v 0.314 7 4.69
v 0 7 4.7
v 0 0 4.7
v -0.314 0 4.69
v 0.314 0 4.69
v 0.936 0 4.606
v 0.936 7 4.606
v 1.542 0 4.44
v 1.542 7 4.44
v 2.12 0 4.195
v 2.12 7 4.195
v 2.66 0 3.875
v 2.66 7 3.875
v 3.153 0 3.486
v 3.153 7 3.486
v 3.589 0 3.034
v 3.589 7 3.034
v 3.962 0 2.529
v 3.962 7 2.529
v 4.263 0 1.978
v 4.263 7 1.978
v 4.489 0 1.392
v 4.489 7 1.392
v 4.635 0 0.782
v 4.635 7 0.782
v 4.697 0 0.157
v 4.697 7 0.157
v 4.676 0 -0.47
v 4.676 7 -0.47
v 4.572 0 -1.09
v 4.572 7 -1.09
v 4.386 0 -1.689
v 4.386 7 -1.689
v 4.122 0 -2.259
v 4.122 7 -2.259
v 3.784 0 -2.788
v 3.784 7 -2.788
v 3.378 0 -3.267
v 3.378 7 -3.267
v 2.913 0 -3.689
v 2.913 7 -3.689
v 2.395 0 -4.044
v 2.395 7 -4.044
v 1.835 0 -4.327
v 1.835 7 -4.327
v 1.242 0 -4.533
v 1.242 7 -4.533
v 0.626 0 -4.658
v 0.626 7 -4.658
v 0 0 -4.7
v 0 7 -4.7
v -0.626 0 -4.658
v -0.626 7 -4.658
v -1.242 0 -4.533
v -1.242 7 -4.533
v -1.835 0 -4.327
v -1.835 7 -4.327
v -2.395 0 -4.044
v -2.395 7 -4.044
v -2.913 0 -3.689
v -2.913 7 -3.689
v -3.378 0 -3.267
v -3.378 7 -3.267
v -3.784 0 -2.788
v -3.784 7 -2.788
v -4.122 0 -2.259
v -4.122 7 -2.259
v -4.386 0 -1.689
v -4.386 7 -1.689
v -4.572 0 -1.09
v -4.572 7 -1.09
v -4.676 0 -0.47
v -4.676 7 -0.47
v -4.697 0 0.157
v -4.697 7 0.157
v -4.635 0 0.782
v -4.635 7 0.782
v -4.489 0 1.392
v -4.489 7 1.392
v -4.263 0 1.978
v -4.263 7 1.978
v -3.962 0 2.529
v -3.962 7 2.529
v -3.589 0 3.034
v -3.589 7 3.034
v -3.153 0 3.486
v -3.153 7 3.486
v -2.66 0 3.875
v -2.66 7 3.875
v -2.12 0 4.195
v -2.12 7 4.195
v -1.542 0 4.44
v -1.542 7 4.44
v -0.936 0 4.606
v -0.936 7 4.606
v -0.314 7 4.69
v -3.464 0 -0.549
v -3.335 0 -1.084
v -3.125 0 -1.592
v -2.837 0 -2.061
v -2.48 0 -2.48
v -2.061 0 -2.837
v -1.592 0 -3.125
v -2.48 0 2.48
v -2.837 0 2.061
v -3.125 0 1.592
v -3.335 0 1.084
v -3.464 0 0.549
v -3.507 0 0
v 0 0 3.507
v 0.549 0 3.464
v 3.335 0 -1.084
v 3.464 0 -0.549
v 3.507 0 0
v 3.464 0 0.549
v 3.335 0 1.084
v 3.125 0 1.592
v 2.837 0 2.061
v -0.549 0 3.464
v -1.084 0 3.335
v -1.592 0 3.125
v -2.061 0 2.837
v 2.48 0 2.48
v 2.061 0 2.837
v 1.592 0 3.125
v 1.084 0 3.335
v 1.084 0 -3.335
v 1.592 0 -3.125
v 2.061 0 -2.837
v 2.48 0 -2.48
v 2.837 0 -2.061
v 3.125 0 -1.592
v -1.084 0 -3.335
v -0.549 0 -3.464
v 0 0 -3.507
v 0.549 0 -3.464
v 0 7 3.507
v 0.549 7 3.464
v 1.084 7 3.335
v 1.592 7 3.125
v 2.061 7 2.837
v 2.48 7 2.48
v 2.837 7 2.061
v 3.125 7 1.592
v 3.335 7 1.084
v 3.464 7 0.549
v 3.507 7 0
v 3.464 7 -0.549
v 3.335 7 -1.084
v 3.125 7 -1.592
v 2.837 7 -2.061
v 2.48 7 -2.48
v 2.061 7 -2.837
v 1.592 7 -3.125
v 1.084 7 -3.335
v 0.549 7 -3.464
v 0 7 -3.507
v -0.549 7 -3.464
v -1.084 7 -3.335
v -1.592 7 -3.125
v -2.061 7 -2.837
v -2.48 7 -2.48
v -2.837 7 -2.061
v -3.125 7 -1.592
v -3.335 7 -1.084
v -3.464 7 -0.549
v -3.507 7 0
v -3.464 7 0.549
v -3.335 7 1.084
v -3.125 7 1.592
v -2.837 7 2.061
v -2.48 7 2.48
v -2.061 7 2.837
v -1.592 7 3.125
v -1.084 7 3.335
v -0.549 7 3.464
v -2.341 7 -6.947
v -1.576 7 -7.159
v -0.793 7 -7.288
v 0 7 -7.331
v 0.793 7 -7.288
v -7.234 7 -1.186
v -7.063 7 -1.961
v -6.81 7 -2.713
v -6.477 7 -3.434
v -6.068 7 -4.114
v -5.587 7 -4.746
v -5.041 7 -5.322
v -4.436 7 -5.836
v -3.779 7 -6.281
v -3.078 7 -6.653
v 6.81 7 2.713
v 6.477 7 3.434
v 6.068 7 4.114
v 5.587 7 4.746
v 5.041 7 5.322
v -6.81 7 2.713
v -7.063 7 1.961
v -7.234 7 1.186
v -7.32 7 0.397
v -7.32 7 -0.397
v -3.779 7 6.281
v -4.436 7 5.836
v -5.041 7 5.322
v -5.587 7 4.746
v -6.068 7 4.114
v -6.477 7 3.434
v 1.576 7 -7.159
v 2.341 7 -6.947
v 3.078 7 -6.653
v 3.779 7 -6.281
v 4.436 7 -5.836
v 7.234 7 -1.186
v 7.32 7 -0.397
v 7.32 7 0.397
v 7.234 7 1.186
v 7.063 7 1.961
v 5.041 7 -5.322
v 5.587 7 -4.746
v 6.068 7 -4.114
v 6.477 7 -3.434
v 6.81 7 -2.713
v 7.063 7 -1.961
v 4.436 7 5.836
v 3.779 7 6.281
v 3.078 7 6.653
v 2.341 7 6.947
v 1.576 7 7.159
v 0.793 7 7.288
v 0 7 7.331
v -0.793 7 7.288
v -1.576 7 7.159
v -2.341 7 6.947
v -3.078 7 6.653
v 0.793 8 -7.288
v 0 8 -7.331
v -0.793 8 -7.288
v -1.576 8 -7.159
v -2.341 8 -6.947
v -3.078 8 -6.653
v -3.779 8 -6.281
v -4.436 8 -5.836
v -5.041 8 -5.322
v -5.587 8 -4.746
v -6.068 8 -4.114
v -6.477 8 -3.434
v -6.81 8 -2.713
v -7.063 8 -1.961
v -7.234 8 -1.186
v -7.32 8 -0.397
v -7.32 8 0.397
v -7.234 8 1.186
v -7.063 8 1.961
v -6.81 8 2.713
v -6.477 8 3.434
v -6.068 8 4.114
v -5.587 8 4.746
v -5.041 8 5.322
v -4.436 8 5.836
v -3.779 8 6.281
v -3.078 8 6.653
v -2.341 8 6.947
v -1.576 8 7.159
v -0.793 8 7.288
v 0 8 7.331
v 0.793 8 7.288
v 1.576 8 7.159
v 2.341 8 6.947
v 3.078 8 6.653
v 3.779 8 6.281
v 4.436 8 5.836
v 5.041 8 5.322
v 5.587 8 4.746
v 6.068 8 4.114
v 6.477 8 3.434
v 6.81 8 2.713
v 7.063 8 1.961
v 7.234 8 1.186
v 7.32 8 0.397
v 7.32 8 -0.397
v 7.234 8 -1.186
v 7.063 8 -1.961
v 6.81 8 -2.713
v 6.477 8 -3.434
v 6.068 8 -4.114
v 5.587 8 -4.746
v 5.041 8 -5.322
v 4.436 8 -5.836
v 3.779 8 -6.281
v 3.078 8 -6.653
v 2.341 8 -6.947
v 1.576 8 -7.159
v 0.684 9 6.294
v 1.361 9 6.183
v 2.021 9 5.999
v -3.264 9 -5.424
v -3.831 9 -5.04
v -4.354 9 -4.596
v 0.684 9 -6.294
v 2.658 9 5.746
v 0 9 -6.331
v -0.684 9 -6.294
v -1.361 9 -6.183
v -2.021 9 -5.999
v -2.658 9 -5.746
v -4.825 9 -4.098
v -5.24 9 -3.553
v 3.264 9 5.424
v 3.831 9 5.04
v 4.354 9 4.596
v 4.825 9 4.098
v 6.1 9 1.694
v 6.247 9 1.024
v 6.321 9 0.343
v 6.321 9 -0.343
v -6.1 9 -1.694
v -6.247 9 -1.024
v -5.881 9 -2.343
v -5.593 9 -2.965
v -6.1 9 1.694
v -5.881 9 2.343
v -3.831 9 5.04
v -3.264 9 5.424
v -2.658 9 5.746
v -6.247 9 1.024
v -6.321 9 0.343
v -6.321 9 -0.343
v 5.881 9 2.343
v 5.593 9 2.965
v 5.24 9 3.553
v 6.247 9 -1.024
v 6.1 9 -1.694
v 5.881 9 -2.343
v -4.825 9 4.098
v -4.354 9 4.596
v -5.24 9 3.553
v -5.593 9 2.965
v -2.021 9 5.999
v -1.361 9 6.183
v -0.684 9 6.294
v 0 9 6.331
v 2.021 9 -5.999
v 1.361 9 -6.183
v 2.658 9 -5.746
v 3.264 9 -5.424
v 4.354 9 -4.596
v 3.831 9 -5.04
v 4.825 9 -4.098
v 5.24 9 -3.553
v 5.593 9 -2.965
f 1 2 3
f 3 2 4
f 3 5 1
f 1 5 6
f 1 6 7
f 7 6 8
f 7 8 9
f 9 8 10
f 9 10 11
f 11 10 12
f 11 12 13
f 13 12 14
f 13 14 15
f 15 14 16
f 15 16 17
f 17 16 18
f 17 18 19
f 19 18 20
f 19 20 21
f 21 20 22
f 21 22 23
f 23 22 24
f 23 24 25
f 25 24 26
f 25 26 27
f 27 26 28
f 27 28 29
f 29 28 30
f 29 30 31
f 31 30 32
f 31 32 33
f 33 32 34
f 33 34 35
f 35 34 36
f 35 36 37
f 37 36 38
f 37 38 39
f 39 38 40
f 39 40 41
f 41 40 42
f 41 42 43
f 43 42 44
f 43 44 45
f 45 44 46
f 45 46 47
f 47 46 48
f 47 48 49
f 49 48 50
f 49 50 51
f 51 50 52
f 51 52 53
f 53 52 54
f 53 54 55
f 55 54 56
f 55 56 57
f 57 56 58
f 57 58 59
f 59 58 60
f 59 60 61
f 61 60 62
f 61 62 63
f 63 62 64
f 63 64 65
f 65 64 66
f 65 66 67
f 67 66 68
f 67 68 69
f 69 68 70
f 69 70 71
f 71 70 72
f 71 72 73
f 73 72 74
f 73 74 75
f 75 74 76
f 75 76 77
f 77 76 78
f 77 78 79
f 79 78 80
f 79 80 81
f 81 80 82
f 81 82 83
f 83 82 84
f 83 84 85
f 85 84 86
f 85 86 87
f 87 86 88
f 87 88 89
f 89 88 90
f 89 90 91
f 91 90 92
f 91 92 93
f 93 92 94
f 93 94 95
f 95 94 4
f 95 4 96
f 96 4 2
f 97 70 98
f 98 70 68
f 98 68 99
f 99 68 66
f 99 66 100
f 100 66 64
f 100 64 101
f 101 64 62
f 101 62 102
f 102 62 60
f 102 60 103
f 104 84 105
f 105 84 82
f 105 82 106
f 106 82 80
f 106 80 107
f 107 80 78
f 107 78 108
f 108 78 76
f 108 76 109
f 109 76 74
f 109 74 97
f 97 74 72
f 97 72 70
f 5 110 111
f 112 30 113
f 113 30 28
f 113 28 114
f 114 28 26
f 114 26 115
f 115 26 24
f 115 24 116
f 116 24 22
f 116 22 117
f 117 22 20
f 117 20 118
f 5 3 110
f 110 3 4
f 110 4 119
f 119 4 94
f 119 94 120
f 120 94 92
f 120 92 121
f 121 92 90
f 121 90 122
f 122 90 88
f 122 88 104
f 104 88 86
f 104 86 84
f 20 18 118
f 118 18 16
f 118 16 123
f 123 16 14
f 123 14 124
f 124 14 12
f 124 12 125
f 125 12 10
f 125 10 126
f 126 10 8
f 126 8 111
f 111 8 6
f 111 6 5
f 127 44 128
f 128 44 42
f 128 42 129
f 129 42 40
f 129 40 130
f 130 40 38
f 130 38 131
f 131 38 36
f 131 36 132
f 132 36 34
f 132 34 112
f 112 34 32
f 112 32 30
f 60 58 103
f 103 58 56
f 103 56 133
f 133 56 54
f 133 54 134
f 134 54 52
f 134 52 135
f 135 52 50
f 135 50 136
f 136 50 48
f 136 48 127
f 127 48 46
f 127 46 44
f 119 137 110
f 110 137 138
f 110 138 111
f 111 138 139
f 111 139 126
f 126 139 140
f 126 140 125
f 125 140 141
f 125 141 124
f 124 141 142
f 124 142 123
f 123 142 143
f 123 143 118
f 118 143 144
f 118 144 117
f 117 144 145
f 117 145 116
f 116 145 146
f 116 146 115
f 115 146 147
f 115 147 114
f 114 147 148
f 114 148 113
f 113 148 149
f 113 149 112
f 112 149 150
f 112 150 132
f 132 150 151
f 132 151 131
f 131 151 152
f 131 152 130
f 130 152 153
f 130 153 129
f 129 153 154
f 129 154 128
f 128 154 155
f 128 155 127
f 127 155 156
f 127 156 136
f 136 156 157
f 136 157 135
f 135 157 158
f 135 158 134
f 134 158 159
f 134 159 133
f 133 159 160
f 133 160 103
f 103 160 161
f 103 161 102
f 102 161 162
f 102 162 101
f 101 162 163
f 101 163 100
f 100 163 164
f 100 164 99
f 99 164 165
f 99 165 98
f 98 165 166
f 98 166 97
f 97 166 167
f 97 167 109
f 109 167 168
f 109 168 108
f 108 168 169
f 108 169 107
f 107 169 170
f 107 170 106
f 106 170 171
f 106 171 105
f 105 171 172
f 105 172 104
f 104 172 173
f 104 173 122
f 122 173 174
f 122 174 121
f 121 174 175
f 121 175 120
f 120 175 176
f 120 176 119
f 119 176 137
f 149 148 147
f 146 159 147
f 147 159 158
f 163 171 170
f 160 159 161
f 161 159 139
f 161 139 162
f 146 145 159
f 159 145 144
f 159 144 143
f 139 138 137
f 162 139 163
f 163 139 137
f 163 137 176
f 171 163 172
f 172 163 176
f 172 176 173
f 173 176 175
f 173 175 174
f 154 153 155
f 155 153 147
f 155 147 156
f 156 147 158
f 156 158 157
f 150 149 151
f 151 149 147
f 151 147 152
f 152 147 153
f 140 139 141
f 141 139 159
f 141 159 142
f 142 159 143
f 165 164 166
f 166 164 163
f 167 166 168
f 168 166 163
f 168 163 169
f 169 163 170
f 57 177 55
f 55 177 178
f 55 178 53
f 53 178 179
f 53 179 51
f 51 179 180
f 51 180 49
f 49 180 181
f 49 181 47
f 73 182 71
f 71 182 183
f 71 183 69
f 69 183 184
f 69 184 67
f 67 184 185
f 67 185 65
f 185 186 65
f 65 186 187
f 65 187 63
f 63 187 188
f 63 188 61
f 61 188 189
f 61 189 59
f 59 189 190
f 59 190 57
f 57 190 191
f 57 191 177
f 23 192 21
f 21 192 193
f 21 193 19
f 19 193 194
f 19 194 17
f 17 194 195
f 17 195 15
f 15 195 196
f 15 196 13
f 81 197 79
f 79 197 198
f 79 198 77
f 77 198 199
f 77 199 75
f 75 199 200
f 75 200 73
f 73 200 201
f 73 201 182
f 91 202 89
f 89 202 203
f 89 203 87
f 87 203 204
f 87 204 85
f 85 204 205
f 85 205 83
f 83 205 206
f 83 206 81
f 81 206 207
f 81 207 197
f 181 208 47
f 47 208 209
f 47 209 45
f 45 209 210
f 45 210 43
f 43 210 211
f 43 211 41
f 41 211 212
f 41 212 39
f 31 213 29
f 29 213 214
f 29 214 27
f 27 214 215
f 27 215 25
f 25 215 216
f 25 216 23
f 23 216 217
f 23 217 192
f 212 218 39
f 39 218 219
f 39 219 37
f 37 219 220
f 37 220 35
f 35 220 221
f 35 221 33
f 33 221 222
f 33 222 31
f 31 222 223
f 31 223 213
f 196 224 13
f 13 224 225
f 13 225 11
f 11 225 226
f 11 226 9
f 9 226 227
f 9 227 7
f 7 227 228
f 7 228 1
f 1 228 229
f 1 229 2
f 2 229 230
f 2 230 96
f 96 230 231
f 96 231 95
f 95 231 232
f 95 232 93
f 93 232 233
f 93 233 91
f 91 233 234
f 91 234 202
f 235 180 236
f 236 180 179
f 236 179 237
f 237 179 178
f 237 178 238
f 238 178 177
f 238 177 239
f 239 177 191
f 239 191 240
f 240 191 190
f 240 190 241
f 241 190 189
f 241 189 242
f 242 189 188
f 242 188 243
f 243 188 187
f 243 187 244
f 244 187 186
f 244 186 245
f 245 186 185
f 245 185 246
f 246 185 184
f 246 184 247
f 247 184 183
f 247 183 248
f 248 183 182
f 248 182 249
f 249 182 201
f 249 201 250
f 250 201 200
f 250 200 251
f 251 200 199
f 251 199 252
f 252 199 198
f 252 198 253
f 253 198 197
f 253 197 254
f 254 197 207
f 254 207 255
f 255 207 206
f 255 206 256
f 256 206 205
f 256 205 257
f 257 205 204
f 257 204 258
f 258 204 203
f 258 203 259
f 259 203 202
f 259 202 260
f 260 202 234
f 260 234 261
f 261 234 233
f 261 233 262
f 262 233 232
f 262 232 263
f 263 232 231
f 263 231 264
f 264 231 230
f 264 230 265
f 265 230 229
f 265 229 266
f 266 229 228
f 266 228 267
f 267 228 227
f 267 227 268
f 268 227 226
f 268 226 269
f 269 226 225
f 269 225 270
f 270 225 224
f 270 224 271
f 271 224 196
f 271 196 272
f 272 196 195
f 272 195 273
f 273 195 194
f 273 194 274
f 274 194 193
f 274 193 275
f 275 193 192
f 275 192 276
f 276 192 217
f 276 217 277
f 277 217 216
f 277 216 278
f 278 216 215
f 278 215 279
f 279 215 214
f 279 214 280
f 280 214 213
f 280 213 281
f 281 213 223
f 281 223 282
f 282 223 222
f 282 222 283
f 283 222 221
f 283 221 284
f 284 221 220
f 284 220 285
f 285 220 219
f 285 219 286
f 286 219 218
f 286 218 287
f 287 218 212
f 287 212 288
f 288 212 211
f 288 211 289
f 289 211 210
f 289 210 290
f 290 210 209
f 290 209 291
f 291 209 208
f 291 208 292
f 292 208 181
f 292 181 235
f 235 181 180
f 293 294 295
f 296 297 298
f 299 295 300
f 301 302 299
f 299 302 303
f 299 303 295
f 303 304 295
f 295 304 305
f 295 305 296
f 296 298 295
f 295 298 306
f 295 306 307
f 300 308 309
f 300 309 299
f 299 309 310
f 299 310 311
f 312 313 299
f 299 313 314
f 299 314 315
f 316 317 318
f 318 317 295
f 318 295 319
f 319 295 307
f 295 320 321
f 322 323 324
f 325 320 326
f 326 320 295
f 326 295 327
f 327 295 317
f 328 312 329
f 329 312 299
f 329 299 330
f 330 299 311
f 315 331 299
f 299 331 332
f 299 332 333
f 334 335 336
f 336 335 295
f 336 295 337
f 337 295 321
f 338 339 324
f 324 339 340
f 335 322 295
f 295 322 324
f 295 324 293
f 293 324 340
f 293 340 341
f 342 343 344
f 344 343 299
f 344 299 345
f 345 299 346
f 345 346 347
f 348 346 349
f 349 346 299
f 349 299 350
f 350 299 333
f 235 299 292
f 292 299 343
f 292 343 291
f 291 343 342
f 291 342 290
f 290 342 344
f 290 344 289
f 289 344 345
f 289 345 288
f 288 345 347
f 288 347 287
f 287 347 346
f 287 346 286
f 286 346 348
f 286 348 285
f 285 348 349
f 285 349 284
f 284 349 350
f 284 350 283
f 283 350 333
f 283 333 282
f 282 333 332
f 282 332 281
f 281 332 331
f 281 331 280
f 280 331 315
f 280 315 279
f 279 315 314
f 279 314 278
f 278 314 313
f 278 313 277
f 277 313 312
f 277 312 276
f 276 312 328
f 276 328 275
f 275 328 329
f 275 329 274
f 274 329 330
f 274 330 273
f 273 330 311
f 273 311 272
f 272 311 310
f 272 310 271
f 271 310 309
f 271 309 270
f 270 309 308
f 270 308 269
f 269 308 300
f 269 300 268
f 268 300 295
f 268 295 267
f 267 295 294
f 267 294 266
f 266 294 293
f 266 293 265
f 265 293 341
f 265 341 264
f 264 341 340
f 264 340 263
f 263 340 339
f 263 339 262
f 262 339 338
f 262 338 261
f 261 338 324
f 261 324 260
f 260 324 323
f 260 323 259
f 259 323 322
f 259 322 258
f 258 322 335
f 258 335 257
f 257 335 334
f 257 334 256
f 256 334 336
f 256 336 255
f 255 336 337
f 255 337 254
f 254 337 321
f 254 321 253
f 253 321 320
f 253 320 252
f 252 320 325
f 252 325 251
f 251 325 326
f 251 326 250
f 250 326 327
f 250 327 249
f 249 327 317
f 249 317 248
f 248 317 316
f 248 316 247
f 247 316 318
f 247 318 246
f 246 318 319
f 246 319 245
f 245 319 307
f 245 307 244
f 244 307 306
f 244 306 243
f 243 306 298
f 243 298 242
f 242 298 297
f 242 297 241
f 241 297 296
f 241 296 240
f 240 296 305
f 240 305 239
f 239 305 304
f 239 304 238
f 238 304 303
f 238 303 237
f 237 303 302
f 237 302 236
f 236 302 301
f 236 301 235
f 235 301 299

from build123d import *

# Parameters (mm, degrees)
SKETCH1_R           = 4.7
BOSS_EXTRUDE1_DEPTH = 7
SKETCH2_R           = 3.506998357
CUT_EXTRUDE1_DEPTH  = 7
SKETCH3_R           = 7.330684461
BOSS_EXTRUDE2_DEPTH = 2
CHAMFER1_SIZE       = 1


with BuildPart() as part:
    # Sketch1 → Boss-Extrude1 (new body)
    with BuildSketch(Plane(origin=(0, 0, 0), x_dir=(1, 0, 0), z_dir=(0, 1, 0))):
        Circle(SKETCH1_R)
    extrude(amount=BOSS_EXTRUDE1_DEPTH)

    # Sketch2 → Cut-Extrude1 (cut)
    with BuildSketch(Plane(origin=(0, 7, 0), x_dir=(-1, 0, 0), z_dir=(0, 1, 0))):
        Circle(SKETCH2_R)
    extrude(amount=-CUT_EXTRUDE1_DEPTH, mode=Mode.SUBTRACT)

    # Sketch3 → Boss-Extrude2 (add)
    with BuildSketch(Plane(origin=(0, 7, 0), x_dir=(1, 0, 0), z_dir=(0, 1, 0))):
        Circle(SKETCH3_R)
    extrude(amount=BOSS_EXTRUDE2_DEPTH)

    # Chamfer1
    chamfer1_edges = [part.edges().sort_by_distance(p)[0] for p in [
        (-7.330684461, 9, 0),
    ]]
    chamfer(chamfer1_edges, length=CHAMFER1_SIZE)


solid = part.part
